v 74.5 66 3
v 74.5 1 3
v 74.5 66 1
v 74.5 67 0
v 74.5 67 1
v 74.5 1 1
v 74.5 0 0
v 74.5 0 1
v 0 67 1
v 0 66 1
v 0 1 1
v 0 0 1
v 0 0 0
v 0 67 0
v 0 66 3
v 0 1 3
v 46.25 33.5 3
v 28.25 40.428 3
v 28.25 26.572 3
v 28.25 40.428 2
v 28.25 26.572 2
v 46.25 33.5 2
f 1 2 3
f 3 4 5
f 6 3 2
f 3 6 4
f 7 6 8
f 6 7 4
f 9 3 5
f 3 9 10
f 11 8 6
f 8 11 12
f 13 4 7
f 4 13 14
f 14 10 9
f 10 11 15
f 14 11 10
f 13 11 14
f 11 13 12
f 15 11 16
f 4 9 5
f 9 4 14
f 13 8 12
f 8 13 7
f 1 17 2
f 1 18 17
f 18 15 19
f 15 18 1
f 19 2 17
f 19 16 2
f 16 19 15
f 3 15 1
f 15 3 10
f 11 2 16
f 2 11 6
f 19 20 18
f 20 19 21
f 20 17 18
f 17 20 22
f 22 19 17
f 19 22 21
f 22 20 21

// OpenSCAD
DIM = [
	76.5, // Spielerinnenablage richtung
	69, // Links-Rechts
	29
];



difference(){

	union(){
		cube([ DIM.x-2 , DIM.y-2 , 1 ]);
		translate([ 0 , 1 , 1 ]) cube([ DIM.x-2 , DIM.y-4 , 2 ]);
	}
	
	// Symbol
	translate([ 0.5*(DIM.x-2) , 0.5*(DIM.y-2) , 2 ]) Symbol();
}

module Symbol () {
	
	translate([ -3 , 0 , 0 ]) scale([ 1.5 , 1 , 1 ]) cylinder( h=10 , r=8 , $fn=3 );
	
}
